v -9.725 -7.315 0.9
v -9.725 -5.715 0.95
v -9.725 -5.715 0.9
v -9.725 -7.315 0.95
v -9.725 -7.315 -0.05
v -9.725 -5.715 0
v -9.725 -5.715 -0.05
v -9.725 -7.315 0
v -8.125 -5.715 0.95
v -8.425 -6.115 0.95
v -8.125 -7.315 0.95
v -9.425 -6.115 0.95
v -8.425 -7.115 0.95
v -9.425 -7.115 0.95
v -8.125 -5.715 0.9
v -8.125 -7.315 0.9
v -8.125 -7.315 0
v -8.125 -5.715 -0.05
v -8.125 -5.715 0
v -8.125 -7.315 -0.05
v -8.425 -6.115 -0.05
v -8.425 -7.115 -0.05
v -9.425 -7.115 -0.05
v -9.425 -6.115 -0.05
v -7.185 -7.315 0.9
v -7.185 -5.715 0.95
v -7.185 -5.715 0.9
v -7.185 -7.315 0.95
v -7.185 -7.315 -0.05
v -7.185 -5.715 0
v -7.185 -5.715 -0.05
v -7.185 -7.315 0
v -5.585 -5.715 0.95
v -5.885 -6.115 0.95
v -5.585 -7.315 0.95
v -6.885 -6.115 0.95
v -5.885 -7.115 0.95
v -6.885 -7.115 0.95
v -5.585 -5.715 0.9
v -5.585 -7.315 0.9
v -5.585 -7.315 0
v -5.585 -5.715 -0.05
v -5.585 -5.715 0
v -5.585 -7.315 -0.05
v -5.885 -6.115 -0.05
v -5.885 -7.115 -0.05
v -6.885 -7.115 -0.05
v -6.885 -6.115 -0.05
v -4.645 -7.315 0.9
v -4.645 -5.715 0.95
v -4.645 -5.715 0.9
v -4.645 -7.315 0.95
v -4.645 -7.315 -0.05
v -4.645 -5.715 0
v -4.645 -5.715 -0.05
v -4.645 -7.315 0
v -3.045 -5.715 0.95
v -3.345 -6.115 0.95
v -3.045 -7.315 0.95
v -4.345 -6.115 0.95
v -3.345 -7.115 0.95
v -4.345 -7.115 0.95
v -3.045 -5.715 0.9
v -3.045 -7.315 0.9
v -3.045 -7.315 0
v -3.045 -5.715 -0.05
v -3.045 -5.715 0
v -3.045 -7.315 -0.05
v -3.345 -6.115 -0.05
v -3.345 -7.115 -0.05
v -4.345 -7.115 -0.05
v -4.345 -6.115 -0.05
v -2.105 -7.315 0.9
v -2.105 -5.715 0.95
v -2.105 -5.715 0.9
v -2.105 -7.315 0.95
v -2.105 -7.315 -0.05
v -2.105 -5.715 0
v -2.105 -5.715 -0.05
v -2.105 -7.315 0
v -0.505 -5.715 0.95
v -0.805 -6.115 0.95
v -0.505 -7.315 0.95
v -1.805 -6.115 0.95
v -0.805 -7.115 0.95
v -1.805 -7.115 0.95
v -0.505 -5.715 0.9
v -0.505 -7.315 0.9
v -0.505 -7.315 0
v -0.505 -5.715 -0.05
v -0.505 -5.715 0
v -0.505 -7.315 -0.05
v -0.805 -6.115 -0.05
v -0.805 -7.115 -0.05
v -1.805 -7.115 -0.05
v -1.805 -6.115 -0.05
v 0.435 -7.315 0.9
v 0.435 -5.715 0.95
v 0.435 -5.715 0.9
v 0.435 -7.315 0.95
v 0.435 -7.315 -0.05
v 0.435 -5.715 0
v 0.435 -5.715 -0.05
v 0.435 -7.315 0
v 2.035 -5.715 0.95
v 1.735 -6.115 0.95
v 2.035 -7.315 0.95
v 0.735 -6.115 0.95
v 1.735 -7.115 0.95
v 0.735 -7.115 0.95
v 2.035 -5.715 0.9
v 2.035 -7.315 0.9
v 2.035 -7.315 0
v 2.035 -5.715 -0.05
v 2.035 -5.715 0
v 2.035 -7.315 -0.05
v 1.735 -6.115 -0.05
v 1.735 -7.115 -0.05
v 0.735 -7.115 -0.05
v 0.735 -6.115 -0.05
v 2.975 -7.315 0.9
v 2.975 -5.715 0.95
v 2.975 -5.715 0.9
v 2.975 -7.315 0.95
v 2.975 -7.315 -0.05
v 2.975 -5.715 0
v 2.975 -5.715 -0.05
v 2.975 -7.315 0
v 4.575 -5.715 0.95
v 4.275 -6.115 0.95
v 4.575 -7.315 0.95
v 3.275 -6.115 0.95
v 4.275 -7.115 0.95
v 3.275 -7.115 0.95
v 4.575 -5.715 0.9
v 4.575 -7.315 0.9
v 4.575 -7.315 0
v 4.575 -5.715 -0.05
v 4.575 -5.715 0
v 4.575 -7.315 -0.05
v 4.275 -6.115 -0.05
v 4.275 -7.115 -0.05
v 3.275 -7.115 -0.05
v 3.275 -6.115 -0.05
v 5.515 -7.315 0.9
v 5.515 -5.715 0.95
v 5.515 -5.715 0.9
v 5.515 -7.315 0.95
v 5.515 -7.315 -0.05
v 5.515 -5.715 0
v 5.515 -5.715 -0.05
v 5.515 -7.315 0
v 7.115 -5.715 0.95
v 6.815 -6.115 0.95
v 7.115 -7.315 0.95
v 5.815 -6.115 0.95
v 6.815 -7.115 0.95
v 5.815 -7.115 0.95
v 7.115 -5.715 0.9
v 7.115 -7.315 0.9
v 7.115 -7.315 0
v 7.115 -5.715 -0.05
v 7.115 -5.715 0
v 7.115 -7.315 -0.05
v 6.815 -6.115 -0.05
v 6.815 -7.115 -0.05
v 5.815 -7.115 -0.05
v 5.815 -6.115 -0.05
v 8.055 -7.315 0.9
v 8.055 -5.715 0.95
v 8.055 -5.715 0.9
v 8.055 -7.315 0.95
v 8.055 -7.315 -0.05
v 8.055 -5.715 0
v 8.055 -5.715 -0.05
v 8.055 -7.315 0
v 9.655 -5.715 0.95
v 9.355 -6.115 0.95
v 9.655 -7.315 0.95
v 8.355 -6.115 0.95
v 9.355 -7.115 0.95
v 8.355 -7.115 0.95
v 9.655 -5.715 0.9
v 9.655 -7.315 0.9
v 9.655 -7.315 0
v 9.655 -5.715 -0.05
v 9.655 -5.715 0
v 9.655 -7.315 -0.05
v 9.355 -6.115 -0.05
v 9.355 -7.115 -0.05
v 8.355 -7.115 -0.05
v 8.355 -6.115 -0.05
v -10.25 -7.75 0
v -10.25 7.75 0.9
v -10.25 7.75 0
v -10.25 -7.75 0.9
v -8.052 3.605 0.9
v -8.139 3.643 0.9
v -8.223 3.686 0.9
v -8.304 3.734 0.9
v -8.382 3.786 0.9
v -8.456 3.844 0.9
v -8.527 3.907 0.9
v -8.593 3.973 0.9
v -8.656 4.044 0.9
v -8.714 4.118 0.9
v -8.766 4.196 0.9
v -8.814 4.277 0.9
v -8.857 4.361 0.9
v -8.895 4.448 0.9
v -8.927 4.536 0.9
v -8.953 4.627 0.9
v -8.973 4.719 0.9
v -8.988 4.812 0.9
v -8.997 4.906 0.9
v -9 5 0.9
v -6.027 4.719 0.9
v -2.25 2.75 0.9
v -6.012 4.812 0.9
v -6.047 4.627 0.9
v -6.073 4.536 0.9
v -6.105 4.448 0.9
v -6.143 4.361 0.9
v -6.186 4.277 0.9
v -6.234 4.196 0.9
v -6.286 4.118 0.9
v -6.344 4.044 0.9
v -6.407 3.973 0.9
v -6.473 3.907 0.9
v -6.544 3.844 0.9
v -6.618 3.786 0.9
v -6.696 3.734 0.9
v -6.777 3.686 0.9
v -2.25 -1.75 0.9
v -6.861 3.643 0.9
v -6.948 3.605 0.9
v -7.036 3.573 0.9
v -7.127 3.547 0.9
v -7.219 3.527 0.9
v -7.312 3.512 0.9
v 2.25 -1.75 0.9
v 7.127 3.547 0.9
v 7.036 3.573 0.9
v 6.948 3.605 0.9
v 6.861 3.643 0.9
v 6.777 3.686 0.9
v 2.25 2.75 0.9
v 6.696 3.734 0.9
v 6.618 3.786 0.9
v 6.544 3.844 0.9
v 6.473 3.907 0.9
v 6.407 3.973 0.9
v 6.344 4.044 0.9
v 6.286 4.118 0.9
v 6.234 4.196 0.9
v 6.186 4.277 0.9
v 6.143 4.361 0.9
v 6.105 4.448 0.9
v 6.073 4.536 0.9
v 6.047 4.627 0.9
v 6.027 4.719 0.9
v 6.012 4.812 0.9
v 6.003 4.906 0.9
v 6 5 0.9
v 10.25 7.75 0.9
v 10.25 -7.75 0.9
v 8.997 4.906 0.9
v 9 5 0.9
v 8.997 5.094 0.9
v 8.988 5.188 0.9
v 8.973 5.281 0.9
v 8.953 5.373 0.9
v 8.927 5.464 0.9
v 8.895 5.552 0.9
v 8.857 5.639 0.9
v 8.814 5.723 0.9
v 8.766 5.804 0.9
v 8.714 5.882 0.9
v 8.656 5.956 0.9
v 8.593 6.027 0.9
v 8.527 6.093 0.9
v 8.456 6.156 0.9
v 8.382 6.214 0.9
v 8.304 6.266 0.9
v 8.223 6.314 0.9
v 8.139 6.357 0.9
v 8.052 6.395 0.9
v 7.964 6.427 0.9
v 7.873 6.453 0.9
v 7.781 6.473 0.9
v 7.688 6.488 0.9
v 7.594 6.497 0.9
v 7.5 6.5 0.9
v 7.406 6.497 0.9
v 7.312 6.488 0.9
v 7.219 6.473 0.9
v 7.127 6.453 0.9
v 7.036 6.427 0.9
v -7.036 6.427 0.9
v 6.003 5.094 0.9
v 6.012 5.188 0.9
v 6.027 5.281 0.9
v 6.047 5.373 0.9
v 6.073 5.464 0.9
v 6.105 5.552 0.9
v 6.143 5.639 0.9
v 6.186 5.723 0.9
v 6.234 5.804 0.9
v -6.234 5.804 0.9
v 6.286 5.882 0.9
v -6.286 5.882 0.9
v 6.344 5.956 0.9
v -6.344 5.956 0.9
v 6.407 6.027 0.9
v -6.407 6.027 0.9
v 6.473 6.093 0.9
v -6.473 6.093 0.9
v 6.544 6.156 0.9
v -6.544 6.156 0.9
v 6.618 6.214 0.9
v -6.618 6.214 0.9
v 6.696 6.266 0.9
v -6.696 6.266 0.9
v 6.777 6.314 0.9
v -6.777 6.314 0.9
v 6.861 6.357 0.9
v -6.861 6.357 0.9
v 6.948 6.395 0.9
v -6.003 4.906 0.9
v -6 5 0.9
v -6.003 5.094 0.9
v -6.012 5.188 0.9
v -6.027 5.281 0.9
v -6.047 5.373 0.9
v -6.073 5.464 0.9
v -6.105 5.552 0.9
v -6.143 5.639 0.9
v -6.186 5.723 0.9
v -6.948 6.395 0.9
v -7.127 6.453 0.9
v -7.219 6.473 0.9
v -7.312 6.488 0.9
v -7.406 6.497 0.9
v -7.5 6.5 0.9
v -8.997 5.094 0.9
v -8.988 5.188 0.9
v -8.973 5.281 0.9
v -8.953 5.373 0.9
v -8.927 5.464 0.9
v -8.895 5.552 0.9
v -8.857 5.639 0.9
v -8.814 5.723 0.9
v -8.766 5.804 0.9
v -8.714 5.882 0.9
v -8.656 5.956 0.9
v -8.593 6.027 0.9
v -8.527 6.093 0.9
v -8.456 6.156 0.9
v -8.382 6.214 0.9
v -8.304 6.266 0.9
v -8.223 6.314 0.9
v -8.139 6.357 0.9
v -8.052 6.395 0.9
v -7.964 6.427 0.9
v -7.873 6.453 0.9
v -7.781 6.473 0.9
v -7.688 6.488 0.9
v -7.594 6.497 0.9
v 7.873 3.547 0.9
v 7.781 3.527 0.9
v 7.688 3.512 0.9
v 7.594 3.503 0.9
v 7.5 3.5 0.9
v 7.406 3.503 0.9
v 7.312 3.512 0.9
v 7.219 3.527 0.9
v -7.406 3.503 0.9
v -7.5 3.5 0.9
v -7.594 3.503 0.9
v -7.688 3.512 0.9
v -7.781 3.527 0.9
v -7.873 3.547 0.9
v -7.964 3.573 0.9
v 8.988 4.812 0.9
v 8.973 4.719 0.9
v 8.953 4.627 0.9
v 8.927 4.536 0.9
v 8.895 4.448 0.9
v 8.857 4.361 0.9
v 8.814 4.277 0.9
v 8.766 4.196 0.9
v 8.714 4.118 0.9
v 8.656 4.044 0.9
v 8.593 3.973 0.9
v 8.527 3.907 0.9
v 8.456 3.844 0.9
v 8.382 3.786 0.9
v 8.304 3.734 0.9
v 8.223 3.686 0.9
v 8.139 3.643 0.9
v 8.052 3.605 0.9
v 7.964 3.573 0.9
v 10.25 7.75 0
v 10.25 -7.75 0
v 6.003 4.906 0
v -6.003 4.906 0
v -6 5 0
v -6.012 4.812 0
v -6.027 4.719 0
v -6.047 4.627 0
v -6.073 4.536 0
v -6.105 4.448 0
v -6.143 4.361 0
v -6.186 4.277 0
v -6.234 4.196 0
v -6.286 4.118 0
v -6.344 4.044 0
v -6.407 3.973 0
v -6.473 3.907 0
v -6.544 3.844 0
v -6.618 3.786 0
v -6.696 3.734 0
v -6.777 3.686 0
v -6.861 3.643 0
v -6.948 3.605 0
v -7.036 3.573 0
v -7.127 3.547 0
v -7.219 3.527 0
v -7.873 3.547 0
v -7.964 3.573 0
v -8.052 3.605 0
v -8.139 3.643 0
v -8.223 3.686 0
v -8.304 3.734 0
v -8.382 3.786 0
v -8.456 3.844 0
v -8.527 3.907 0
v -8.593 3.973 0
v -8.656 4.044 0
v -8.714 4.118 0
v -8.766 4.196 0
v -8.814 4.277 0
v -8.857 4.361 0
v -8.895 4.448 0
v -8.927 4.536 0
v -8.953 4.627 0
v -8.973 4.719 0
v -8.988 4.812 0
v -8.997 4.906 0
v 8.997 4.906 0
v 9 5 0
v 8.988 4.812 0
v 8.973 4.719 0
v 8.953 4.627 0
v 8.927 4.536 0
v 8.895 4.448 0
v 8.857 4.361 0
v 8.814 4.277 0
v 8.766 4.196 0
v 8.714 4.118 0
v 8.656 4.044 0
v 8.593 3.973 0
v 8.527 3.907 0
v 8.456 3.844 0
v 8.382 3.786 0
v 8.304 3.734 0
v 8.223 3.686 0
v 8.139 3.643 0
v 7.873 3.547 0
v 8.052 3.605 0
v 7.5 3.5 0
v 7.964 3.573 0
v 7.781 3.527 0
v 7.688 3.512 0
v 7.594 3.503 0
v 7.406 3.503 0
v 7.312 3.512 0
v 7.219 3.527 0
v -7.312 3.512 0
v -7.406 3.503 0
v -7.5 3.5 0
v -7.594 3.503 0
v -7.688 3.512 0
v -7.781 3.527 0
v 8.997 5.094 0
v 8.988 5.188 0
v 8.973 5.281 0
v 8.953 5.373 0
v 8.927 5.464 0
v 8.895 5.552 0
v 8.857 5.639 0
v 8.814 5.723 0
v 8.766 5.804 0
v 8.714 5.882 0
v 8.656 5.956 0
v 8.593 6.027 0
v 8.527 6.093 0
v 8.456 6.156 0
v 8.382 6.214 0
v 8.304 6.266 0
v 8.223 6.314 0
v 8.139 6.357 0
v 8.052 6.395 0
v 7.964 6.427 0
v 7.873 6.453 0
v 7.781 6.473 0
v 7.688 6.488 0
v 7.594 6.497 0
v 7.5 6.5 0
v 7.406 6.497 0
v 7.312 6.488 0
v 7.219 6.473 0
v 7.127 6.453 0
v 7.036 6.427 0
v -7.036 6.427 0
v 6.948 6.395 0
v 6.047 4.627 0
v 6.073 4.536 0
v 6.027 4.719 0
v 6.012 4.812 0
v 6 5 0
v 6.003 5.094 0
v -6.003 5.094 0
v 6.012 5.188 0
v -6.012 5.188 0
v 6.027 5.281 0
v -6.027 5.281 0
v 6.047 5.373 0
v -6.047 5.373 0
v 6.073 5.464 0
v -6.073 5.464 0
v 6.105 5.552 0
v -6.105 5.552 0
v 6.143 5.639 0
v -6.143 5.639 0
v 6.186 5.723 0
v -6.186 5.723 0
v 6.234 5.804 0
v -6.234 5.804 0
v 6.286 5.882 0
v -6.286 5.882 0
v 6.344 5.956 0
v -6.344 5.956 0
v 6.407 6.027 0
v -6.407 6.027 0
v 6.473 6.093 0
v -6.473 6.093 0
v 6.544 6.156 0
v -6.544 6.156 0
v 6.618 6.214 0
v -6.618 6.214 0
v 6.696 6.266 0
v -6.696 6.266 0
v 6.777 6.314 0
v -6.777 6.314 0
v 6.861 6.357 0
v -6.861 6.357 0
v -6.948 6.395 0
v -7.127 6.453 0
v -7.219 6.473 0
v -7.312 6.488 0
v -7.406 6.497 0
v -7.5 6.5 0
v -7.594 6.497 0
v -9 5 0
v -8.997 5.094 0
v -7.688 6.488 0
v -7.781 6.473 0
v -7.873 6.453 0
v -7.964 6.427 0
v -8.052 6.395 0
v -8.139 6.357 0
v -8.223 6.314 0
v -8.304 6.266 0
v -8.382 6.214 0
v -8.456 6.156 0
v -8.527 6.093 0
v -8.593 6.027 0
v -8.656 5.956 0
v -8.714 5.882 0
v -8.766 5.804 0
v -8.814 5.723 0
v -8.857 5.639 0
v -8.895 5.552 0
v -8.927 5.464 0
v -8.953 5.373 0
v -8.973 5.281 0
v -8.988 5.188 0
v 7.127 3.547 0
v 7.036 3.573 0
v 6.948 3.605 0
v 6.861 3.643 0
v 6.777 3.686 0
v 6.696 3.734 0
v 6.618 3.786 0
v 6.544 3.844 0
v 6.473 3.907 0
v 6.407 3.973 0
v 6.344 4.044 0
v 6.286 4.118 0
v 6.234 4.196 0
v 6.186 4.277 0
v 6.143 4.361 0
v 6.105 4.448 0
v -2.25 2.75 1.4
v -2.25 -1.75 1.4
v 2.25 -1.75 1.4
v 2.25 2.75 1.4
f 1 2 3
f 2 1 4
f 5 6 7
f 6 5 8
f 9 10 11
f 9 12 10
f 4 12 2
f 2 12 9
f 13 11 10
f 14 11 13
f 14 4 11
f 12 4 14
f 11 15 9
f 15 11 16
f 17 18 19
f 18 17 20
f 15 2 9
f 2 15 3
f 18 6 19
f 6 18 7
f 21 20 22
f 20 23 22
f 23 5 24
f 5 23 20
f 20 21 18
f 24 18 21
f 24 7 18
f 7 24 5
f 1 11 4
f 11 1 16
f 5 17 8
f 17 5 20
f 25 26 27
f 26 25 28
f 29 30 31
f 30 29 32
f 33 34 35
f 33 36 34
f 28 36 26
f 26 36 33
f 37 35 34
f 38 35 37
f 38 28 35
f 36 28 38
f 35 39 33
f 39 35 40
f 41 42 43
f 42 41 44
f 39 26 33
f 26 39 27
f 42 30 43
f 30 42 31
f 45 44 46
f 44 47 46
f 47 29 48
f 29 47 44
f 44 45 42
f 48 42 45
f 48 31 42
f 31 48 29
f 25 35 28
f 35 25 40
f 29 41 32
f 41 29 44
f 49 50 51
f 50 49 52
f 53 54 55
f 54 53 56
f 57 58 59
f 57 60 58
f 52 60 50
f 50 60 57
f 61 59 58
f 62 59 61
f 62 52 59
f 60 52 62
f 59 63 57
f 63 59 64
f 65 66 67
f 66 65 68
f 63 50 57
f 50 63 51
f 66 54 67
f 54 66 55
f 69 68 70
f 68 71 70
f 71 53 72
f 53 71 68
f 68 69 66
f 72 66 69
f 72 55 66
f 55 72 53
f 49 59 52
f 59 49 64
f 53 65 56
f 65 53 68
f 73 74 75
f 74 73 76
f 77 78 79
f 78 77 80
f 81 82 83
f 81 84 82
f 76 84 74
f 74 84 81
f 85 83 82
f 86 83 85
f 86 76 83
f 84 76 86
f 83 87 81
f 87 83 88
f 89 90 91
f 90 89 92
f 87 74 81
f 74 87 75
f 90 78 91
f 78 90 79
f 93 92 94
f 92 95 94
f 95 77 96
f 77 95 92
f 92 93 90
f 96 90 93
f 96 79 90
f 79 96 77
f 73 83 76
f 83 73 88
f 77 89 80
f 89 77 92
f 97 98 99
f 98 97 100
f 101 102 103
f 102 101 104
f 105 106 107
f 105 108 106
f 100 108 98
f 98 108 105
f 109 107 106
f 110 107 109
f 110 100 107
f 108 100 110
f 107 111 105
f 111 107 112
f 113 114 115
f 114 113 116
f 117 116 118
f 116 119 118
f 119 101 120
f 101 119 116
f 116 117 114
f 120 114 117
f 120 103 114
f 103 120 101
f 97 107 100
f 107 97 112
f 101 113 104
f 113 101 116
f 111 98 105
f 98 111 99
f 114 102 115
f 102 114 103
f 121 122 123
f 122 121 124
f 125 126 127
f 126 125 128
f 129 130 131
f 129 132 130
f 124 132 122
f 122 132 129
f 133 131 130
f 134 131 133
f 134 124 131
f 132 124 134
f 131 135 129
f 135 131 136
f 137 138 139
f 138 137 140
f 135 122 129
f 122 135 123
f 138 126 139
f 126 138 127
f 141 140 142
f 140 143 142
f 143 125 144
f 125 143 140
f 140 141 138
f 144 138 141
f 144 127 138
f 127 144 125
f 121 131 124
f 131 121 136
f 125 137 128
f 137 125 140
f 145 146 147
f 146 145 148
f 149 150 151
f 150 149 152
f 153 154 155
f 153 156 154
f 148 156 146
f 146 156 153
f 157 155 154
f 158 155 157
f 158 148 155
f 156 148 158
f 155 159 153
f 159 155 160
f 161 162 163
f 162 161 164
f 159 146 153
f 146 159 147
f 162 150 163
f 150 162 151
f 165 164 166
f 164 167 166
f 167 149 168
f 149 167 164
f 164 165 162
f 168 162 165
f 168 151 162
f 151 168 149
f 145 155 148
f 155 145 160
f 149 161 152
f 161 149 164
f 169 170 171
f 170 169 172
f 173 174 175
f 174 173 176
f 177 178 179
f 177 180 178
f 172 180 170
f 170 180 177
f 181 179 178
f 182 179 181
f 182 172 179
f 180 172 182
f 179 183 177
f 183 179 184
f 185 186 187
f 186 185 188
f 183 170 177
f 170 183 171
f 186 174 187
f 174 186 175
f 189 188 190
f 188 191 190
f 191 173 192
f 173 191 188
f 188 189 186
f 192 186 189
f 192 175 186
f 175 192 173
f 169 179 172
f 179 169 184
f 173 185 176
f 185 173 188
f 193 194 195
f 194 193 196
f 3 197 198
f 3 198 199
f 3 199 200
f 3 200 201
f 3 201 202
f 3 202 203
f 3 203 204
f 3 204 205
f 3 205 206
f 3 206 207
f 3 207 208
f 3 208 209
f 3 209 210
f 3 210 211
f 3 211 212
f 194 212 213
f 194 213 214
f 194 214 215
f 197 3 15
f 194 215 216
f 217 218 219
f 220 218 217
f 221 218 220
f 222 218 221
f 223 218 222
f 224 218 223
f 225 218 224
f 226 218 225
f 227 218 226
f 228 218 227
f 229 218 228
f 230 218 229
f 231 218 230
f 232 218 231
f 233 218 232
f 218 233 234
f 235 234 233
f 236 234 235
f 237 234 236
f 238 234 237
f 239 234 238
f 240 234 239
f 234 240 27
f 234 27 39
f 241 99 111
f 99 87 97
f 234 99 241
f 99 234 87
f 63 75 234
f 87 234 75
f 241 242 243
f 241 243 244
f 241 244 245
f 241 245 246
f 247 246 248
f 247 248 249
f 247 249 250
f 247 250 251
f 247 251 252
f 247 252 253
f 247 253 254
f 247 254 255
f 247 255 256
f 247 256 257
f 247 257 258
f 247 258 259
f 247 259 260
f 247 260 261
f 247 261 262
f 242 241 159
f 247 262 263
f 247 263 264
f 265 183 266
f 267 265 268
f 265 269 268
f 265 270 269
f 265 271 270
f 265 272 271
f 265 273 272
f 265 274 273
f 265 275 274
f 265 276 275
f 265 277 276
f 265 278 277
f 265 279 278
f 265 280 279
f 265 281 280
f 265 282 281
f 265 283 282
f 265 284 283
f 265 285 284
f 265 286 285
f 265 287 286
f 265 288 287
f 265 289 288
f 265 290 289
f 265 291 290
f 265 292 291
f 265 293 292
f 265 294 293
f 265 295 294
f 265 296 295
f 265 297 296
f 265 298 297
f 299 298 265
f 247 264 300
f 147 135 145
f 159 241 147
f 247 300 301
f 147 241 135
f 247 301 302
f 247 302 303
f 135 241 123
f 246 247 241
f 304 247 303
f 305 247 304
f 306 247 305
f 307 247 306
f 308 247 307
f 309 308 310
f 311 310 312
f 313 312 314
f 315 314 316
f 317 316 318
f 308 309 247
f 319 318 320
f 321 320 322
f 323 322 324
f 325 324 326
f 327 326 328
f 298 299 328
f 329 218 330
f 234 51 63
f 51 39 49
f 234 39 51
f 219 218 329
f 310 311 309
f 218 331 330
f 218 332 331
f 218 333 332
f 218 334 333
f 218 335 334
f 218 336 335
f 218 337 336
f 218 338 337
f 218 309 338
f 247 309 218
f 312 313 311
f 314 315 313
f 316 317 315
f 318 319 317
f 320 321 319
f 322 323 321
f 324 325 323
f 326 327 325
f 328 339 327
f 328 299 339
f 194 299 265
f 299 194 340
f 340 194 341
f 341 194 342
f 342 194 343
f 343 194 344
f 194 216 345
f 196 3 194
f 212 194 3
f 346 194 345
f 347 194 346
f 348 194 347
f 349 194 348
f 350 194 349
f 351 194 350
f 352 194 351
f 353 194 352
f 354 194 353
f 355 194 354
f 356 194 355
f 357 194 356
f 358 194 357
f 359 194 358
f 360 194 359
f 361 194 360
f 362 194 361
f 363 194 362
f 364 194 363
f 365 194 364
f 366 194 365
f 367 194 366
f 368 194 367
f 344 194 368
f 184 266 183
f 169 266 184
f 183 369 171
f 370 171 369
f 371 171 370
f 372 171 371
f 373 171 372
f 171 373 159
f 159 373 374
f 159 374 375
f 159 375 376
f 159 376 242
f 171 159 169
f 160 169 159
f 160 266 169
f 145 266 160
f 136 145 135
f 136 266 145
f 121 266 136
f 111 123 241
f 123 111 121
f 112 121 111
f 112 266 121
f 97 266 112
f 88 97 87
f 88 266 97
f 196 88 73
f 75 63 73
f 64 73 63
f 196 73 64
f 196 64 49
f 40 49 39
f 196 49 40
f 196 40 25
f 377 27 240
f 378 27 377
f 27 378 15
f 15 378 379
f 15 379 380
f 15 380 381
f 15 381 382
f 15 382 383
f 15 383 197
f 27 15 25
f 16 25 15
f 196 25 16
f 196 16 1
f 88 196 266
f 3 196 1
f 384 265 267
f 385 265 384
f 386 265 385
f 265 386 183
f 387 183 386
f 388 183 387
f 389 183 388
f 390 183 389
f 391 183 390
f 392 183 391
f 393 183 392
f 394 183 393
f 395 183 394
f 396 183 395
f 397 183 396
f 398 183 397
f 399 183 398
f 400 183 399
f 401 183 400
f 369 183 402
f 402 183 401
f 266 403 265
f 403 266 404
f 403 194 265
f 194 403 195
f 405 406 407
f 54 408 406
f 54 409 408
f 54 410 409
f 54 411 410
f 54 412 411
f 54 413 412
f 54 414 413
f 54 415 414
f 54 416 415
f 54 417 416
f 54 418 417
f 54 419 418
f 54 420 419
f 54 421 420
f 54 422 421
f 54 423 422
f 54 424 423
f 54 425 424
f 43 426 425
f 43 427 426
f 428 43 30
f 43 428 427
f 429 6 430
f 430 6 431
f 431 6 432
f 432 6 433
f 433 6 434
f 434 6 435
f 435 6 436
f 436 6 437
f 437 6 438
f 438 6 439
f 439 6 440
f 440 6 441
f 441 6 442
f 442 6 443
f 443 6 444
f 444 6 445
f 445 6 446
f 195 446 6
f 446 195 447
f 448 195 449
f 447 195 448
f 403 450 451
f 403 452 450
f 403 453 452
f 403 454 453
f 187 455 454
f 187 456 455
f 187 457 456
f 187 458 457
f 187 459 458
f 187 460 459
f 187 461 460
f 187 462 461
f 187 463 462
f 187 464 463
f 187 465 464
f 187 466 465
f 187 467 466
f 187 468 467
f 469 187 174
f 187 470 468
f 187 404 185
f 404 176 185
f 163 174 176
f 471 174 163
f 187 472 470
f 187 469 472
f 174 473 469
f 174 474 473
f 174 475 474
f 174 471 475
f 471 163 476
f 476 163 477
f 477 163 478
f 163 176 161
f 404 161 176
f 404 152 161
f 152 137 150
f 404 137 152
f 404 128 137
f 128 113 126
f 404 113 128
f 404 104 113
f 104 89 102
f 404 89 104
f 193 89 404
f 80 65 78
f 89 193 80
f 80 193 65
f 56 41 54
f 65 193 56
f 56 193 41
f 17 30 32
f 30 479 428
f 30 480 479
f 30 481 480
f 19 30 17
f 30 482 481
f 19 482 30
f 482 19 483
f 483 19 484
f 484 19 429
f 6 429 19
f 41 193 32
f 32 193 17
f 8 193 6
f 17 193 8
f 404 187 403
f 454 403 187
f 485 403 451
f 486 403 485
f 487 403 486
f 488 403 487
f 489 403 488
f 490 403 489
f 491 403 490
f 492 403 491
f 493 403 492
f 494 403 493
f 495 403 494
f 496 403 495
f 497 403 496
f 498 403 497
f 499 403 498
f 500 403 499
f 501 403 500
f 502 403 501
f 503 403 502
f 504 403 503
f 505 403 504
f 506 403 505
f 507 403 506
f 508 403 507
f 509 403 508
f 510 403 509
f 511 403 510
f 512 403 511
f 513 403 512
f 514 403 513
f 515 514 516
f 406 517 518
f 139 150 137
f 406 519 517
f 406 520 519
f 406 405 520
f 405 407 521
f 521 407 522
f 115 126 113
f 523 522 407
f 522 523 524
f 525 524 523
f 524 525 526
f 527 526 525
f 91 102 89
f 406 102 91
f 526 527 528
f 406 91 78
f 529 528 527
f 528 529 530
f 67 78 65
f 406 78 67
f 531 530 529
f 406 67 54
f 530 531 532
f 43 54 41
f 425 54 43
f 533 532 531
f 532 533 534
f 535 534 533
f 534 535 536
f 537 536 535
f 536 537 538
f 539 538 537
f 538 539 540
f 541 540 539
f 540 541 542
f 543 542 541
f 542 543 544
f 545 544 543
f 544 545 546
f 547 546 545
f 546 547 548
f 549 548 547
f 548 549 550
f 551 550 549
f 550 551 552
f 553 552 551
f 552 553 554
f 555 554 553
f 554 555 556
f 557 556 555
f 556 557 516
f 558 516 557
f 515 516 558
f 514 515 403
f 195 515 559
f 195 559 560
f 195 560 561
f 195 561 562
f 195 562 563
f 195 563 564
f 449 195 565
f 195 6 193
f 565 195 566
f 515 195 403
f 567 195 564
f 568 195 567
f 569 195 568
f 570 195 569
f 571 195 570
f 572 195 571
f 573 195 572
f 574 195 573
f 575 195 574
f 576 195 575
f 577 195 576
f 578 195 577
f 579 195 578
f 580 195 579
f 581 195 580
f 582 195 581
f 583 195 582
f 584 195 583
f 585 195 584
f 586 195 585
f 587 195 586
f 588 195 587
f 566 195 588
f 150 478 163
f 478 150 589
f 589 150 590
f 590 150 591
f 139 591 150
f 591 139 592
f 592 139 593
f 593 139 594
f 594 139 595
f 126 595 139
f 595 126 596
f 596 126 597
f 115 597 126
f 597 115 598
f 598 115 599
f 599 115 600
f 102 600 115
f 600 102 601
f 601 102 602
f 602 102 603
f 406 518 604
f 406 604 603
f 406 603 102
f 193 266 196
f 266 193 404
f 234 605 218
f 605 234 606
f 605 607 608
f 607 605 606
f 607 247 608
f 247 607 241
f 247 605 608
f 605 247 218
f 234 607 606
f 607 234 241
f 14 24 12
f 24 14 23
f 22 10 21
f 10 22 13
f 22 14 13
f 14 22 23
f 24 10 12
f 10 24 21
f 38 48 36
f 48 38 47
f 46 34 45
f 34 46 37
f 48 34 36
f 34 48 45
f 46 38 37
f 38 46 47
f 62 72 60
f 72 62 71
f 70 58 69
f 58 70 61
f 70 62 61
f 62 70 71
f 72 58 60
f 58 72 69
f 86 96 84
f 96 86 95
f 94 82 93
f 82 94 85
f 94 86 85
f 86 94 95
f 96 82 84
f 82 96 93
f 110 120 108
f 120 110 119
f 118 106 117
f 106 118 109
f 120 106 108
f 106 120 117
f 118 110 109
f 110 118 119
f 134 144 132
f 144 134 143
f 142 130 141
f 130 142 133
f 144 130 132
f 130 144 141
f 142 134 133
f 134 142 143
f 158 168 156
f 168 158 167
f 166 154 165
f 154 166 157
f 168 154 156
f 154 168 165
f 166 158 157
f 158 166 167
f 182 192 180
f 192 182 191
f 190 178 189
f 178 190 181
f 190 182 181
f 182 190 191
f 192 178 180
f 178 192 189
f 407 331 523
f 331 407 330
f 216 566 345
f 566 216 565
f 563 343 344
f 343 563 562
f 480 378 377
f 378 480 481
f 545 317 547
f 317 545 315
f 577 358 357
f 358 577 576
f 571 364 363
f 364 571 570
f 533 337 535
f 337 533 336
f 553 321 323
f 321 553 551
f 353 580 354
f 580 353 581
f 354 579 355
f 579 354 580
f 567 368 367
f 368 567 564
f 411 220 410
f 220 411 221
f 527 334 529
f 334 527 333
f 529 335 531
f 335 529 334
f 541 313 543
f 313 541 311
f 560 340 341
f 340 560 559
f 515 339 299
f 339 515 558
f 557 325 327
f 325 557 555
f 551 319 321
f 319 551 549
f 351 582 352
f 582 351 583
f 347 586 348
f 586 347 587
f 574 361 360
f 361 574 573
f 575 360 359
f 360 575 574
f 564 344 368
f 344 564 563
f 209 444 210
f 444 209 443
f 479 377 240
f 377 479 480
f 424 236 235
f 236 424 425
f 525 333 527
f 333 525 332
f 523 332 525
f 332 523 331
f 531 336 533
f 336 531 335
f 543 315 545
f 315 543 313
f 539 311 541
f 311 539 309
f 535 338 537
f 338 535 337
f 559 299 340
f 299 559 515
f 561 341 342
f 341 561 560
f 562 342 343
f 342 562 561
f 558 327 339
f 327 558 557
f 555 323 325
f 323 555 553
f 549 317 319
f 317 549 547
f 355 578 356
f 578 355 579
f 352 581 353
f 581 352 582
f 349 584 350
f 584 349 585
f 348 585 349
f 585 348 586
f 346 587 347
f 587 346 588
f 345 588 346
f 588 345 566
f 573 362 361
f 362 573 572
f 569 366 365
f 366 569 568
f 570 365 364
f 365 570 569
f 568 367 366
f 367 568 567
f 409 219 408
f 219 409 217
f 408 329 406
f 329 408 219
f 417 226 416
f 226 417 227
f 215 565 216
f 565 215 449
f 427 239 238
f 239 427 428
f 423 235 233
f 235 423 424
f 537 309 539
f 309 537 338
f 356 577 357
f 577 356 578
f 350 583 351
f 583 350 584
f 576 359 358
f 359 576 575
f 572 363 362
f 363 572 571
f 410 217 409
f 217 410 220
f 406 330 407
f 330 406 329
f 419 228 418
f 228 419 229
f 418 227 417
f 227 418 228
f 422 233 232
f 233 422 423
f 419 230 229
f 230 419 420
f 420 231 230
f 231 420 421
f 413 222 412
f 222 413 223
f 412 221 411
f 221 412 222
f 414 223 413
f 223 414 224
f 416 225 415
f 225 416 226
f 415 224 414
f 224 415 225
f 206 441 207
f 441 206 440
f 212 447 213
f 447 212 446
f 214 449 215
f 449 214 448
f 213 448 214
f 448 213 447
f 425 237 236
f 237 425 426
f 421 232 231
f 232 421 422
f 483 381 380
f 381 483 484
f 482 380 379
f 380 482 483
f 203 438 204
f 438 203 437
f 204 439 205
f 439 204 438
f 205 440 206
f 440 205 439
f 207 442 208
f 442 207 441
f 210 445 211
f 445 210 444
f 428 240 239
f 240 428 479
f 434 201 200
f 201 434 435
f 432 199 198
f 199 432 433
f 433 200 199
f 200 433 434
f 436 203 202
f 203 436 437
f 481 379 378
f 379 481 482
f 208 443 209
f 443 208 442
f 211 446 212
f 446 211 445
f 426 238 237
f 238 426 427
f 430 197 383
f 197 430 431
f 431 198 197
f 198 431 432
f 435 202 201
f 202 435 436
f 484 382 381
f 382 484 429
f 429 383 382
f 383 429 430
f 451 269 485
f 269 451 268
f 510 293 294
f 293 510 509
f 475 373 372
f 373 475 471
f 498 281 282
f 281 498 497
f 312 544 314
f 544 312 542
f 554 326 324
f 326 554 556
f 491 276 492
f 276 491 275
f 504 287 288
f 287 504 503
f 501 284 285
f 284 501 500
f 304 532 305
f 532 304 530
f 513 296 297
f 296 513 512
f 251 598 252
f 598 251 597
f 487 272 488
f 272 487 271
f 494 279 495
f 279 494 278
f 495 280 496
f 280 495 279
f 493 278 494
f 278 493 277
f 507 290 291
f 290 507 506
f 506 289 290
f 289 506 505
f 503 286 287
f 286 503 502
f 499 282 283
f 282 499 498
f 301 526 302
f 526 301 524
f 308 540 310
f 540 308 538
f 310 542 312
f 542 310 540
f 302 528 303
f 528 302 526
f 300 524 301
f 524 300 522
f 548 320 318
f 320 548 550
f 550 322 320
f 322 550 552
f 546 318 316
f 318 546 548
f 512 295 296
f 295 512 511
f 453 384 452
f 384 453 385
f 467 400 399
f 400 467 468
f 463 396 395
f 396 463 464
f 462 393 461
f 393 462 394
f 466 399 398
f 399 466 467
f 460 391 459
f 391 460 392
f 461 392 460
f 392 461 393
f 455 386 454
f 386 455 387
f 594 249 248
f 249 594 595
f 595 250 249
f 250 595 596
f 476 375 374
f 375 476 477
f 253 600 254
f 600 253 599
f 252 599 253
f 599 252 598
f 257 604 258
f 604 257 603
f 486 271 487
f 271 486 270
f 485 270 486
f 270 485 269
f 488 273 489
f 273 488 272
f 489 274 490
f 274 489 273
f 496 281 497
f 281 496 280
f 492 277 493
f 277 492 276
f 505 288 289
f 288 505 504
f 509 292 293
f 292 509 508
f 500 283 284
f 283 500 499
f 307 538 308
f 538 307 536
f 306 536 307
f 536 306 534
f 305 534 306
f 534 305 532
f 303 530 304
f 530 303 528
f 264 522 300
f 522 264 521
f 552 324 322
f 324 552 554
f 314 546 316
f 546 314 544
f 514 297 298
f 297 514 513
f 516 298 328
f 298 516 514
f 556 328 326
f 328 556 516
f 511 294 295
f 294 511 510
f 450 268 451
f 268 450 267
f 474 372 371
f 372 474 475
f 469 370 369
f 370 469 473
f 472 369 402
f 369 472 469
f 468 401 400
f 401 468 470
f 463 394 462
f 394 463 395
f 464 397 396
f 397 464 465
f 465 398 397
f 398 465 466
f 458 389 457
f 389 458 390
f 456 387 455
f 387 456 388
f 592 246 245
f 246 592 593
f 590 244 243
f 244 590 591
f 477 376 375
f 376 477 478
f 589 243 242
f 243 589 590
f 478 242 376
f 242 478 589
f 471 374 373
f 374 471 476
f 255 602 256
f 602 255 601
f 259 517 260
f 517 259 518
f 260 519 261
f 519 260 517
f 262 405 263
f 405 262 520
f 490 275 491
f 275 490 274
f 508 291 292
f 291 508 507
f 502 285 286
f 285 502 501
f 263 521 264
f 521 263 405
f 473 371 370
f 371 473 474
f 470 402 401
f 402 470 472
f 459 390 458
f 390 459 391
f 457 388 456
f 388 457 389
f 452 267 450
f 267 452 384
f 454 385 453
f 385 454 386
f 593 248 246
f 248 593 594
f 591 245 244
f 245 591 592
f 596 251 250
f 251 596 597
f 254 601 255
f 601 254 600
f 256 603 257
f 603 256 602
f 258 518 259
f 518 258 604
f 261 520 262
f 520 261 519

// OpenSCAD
$fn=100;


imu();

module imu(){
    
        difference(){
        union(){
            color("limegreen")
            translate([-20.5/2, -15.5/2, 0])
            cube([20.5, 15.5, 0.9]);
            
            
            //mpu6050
            color("black")
            translate([-4.5/2, -3.5/2, 0.9])
            cube([4.5, 4.5, 0.5]);
            

            
            
            //led
            //color("white")
            //translate([-20/2, -8.5/2+2.4-7, 0.9])
            //cube([20, 3, 1]);            
            
            
            //connector
            //color("white")
            //translate([-20.8/2, -5.5+24/2, -2.4])
            //cube([20.8, 5.5, 2.4]);
            
            translate([-4*2.54-0.5,-16.5/2,0.45])
            color("gold")
            for(x=[0:8-1],y=[0:1-1])
                translate([x*2.54+(1.27+.6)/2,y*2.54+(1.27+.6)/2,-0.5]) cube([1.6,1.6,1]);
            
            
    
        }
          
       
        translate([-15/2, 25/2-7.5,-1]) cylinder(d=3, h=3);
        translate([15/2, 25/2-7.5,-1]) cylinder(d=3, h=3);
        
        translate([-4*2.54-0.5,-15.5/2,0.45])
        for(x=[0:8-1],y=[0:1-1])
                translate([x*2.54+(1.27+1.2)/2,y*2.54+(1.27)/2,-0.75]) cube([1,1,1.5]);
        

    }
    
}
